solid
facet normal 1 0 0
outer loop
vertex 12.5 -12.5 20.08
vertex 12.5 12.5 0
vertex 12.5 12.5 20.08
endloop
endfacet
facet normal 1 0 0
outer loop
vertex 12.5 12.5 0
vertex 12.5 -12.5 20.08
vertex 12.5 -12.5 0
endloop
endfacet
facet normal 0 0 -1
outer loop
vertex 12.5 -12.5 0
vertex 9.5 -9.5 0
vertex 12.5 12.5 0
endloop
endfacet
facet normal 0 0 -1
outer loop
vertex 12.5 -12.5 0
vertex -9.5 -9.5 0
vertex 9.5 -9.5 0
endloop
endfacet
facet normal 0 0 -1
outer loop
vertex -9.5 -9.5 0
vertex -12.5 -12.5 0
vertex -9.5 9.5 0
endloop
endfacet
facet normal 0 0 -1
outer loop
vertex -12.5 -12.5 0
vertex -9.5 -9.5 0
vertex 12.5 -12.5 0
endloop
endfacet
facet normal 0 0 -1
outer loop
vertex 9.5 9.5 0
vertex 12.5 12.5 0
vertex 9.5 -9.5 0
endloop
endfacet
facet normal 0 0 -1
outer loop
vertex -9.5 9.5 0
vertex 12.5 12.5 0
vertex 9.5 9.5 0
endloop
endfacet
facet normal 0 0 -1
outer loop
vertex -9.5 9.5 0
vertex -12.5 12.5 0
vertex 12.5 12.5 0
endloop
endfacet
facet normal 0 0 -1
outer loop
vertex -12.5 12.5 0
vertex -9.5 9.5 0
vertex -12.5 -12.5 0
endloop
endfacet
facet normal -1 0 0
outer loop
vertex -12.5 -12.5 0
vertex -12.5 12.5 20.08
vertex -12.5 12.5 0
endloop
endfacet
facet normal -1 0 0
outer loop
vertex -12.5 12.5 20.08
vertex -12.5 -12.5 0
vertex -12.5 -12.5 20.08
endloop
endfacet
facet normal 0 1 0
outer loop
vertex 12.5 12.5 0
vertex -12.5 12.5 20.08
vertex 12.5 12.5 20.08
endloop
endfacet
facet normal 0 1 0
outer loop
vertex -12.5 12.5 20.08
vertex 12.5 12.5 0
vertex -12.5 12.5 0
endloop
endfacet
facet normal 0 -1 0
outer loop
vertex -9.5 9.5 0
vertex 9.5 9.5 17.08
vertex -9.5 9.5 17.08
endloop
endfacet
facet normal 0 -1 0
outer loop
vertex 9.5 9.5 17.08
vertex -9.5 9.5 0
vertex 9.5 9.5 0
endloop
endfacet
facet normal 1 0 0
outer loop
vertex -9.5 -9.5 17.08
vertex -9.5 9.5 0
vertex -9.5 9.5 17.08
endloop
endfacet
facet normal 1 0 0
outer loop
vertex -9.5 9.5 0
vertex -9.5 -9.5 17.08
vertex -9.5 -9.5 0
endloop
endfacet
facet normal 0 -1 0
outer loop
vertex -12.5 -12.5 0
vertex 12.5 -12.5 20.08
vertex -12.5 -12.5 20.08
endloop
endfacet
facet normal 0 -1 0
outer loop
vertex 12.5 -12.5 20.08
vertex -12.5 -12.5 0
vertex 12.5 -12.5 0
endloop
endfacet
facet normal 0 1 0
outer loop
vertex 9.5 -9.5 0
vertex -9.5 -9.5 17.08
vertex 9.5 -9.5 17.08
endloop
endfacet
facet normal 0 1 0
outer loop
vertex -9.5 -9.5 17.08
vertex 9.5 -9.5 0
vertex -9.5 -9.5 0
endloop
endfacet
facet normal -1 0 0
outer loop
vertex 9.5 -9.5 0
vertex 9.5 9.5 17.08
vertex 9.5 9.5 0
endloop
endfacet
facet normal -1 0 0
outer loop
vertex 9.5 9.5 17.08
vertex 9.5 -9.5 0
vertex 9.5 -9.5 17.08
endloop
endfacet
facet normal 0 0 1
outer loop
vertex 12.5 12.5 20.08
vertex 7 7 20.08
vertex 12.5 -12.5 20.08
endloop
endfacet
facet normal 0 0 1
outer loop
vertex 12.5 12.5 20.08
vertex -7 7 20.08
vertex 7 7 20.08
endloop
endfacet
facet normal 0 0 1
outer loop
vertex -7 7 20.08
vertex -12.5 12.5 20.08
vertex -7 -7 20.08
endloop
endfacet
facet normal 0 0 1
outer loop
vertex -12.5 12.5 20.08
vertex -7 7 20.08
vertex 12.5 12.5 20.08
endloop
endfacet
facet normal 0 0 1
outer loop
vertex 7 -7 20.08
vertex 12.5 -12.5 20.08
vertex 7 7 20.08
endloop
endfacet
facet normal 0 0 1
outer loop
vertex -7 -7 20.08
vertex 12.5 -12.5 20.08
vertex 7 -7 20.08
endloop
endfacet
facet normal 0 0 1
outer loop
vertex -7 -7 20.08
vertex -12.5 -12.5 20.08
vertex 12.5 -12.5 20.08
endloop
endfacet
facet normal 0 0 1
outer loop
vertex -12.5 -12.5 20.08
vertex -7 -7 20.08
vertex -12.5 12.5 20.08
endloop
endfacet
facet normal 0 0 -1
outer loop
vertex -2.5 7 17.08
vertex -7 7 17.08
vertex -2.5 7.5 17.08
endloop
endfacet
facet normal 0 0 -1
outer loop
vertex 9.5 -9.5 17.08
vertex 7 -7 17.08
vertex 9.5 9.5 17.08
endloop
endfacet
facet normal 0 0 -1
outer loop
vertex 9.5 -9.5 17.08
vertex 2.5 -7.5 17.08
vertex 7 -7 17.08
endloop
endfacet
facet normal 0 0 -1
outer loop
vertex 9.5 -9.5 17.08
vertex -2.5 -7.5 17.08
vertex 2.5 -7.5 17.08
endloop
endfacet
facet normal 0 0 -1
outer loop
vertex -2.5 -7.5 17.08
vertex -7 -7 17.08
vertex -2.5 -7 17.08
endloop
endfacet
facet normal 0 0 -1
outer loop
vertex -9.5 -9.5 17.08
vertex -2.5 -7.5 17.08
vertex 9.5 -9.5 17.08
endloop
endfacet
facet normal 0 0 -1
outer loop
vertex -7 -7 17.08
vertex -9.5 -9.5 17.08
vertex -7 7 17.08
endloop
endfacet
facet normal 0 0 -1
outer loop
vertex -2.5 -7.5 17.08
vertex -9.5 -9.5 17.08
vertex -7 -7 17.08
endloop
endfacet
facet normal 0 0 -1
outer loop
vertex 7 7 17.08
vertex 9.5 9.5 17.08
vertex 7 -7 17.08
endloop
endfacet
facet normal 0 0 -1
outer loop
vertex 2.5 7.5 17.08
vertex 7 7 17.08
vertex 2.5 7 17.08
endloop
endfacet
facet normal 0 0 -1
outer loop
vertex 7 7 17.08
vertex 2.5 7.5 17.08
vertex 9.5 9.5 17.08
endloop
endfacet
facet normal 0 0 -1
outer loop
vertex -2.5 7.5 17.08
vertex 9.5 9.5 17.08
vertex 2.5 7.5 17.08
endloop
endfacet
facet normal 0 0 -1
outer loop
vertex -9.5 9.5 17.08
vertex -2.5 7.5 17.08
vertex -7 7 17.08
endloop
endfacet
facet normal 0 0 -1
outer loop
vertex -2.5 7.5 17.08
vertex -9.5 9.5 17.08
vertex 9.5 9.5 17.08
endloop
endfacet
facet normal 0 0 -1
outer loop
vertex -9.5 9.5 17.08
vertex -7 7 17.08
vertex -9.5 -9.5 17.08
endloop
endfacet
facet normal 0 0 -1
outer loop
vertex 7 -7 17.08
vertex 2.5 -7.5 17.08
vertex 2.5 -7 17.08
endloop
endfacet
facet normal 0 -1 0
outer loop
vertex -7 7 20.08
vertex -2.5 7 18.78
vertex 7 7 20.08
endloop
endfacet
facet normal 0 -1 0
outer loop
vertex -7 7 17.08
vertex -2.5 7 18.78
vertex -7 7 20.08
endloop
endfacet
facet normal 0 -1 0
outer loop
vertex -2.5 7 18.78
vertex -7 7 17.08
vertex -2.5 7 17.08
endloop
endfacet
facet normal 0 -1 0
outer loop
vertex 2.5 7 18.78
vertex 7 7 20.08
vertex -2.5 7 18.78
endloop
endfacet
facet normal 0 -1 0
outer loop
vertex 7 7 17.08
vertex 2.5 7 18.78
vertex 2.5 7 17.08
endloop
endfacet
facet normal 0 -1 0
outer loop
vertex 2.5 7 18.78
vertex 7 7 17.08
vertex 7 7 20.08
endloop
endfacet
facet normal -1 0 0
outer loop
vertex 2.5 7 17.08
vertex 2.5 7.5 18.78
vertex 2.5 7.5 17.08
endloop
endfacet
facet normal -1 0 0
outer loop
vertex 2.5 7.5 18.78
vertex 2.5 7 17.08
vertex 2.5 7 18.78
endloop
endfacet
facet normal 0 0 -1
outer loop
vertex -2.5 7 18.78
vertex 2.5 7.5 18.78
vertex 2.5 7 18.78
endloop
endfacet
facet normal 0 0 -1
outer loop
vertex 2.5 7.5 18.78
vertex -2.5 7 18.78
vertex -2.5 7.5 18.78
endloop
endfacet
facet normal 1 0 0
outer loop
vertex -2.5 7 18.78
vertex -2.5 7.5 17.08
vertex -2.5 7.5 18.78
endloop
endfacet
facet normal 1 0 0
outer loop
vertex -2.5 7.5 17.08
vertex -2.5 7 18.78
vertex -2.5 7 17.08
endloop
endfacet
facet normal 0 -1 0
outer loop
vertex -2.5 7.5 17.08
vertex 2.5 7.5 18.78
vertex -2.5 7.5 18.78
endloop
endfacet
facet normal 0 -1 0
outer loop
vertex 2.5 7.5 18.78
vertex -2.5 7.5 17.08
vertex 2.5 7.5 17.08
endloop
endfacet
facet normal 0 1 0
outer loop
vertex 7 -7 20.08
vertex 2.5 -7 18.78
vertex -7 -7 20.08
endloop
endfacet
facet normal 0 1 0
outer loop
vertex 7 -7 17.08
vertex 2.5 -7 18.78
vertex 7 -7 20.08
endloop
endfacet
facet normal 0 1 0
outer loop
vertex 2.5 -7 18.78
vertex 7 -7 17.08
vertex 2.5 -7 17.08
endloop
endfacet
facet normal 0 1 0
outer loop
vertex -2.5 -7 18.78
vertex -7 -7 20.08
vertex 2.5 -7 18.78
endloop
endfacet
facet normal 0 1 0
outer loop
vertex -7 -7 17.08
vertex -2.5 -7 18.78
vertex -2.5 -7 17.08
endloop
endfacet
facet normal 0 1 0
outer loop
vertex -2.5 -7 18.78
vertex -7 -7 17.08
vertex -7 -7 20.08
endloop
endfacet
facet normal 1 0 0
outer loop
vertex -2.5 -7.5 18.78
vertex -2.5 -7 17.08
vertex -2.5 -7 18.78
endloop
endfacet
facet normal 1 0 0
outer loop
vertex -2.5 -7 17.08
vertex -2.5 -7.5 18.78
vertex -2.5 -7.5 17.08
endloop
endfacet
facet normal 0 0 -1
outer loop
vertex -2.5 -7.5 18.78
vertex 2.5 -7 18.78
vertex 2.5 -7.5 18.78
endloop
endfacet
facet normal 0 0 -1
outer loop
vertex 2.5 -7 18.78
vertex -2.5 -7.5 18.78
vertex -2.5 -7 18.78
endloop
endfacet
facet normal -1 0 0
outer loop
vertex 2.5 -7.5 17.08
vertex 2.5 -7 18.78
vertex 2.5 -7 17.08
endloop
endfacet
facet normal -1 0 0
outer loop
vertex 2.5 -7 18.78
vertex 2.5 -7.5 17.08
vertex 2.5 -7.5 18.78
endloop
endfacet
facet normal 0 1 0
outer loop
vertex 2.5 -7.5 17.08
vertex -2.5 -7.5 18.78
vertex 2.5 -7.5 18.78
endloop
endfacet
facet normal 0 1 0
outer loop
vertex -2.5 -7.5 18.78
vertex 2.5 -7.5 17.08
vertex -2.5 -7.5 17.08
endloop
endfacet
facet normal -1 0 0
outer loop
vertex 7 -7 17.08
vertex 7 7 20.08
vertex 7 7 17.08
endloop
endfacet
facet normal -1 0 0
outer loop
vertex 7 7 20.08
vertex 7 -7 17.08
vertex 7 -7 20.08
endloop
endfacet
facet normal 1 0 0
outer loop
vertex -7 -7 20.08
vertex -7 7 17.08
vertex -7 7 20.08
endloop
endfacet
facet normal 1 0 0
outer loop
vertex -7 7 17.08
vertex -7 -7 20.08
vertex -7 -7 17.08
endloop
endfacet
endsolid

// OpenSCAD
// Generated by SolidPython 1.0.4 on 2020-12-13 17:19:37


union() {
	translate(v = [0, 0, 10.0400000000]) {
		union() {
			translate(v = [0, 11.0000000000, 0]) {
				cube(center = true, size = [25.0000000000, 3, 20.0800000000]);
			}
			translate(v = [-11.0000000000, 0, 0]) {
				cube(center = true, size = [3, 25.0000000000, 20.0800000000]);
			}
			rotate(a = 180) {
				translate(v = [0, 11.0000000000, 0]) {
					cube(center = true, size = [25.0000000000, 3, 20.0800000000]);
				}
			}
			rotate(a = 180) {
				translate(v = [-11.0000000000, 0, 0]) {
					cube(center = true, size = [3, 25.0000000000, 20.0800000000]);
				}
			}
		}
	}
	translate(v = [0, 0, 17.0800000000]) {
		translate(v = [0.0000000000, 0, 0]) {
			translate(v = [0, -0.0000000000, 0]) {
				translate(v = [-0.0000000000, 0, 0]) {
					translate(v = [0, 0.0000000000, 0]) {
						union() {
							translate(v = [0, 7.7500000000, 0]) {
								translate(v = [0, 0, 1.5000000000]) {
									difference() {
										cube(center = true, size = [17.0000000000, 1.5000000000, 3]);
										translate(v = [0, 0, -1.3000000000]) {
											translate(v = [0, -0.7500000000, 0]) {
												cube(center = true, size = [5, 1.0000000000, 3]);
											}
										}
									}
								}
							}
							translate(v = [-7.7500000000, 0, 0]) {
								translate(v = [0, 0, 1.5000000000]) {
									cube(center = true, size = [1.5000000000, 17.0000000000, 3]);
								}
							}
							mirror(v = [0, 1, 0]) {
								mirror(v = [1, 0, 0]) {
									union() {
										translate(v = [0, 7.7500000000, 0]) {
											translate(v = [0, 0, 1.5000000000]) {
												difference() {
													cube(center = true, size = [17.0000000000, 1.5000000000, 3]);
													translate(v = [0, 0, -1.3000000000]) {
														translate(v = [0, -0.7500000000, 0]) {
															cube(center = true, size = [5, 1.0000000000, 3]);
														}
													}
												}
											}
										}
										translate(v = [-7.7500000000, 0, 0]) {
											translate(v = [0, 0, 1.5000000000]) {
												cube(center = true, size = [1.5000000000, 17.0000000000, 3]);
											}
										}
									}
								}
							}
							translate(v = [0, 0, 1.5000000000]) {
								translate(v = [0, 10.5000000000, 0]) {
									cube(center = true, size = [25.0000000000, 4, 3]);
								}
							}
							rotate(a = 90) {
								translate(v = [0, 0, 1.5000000000]) {
									translate(v = [0, 10.5000000000, 0]) {
										cube(center = true, size = [25.0000000000, 4, 3]);
									}
								}
							}
							rotate(a = 180) {
								translate(v = [0, 0, 1.5000000000]) {
									translate(v = [0, 10.5000000000, 0]) {
										cube(center = true, size = [25.0000000000, 4, 3]);
									}
								}
							}
							rotate(a = 270) {
								translate(v = [0, 0, 1.5000000000]) {
									translate(v = [0, 10.5000000000, 0]) {
										cube(center = true, size = [25.0000000000, 4, 3]);
									}
								}
							}
						}
					}
				}
			}
		}
	}
}
/***********************************************
*********      SolidPython code:      **********
************************************************
 
#!/usr/bin/env python
import argparse
from os.path import abspath, dirname, join

from solid import *

from key_grid_tester import key_grid_tester


if __name__ == "__main__":
    parser = argparse.ArgumentParser(description="Process some integers.")
    parser.add_argument(
        "length",
        metavar="LENGTH",
        type=int,
        help="the length of the tester, in number of keys",
    )
    parser.add_argument(
        "width",
        metavar="WIDTH",
        type=int,
        help="the width of the tester, in number of keys",
    )
    parser.add_argument(
        "-o",
        "--output",
        metavar="FILE",
        type=str,
        default=None,
        help="the name of the file to write to",
    )

    args = parser.parse_args()

    filepath=join(
        dirname(dirname(abspath(__file__))),
        'files',
        args.output or f"key_grid_tester_{args.length}x{args.width}.scad"
    )

    print(filepath)

    scad_render_to_file(
        key_grid_tester(args.length, args.width),
        filepath=filepath,
        include_orig_code=True
    )
 
 
************************************************/
